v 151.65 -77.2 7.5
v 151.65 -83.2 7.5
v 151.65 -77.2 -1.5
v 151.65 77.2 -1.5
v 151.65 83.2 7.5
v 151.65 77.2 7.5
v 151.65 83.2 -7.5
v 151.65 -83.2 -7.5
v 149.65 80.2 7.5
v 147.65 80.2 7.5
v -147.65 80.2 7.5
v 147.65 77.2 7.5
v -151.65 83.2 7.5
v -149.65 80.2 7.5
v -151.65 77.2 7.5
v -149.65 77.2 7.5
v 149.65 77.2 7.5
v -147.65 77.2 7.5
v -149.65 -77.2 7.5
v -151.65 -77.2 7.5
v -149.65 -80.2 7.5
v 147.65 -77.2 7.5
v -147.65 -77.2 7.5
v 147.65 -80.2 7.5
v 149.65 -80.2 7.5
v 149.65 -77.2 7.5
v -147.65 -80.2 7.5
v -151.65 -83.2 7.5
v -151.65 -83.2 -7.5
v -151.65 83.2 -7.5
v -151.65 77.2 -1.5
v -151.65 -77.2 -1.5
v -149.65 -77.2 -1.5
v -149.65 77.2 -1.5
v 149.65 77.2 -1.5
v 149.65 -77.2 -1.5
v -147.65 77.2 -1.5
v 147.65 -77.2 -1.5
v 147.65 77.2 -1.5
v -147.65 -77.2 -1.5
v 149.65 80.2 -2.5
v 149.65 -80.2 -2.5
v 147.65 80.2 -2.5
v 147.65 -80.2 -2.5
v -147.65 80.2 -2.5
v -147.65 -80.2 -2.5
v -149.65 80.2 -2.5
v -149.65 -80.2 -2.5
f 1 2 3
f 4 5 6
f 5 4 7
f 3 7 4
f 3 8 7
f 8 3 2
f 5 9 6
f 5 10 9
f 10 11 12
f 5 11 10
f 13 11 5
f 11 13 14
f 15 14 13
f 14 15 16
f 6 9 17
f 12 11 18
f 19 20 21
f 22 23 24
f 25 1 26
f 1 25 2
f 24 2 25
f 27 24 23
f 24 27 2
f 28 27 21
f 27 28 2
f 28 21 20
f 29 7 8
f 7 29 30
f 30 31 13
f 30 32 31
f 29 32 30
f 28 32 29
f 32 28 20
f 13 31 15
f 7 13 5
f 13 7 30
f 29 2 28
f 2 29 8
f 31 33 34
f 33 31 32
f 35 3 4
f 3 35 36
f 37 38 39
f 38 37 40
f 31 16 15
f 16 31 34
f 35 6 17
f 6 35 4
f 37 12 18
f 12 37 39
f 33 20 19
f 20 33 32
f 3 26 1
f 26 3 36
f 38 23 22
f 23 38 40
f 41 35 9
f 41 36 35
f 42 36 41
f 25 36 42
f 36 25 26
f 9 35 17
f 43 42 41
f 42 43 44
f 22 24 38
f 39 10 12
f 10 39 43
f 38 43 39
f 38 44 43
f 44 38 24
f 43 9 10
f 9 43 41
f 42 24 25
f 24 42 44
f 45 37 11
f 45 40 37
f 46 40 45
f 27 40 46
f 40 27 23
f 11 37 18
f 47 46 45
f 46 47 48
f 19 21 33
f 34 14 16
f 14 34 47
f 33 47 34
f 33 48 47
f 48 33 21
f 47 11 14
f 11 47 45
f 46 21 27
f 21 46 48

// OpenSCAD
difference() {
    cube([303.3, 166.4, 15], center = true);

    translate([0, 0, 3.5]) cube([400, 154.4, 10], center = true);
    
    
    translate([148.65, 0, 3]) cube([2, 160.4, 11], center = true);
    translate([-148.65, 0, 3]) cube([2, 160.4, 11], center = true);
}
